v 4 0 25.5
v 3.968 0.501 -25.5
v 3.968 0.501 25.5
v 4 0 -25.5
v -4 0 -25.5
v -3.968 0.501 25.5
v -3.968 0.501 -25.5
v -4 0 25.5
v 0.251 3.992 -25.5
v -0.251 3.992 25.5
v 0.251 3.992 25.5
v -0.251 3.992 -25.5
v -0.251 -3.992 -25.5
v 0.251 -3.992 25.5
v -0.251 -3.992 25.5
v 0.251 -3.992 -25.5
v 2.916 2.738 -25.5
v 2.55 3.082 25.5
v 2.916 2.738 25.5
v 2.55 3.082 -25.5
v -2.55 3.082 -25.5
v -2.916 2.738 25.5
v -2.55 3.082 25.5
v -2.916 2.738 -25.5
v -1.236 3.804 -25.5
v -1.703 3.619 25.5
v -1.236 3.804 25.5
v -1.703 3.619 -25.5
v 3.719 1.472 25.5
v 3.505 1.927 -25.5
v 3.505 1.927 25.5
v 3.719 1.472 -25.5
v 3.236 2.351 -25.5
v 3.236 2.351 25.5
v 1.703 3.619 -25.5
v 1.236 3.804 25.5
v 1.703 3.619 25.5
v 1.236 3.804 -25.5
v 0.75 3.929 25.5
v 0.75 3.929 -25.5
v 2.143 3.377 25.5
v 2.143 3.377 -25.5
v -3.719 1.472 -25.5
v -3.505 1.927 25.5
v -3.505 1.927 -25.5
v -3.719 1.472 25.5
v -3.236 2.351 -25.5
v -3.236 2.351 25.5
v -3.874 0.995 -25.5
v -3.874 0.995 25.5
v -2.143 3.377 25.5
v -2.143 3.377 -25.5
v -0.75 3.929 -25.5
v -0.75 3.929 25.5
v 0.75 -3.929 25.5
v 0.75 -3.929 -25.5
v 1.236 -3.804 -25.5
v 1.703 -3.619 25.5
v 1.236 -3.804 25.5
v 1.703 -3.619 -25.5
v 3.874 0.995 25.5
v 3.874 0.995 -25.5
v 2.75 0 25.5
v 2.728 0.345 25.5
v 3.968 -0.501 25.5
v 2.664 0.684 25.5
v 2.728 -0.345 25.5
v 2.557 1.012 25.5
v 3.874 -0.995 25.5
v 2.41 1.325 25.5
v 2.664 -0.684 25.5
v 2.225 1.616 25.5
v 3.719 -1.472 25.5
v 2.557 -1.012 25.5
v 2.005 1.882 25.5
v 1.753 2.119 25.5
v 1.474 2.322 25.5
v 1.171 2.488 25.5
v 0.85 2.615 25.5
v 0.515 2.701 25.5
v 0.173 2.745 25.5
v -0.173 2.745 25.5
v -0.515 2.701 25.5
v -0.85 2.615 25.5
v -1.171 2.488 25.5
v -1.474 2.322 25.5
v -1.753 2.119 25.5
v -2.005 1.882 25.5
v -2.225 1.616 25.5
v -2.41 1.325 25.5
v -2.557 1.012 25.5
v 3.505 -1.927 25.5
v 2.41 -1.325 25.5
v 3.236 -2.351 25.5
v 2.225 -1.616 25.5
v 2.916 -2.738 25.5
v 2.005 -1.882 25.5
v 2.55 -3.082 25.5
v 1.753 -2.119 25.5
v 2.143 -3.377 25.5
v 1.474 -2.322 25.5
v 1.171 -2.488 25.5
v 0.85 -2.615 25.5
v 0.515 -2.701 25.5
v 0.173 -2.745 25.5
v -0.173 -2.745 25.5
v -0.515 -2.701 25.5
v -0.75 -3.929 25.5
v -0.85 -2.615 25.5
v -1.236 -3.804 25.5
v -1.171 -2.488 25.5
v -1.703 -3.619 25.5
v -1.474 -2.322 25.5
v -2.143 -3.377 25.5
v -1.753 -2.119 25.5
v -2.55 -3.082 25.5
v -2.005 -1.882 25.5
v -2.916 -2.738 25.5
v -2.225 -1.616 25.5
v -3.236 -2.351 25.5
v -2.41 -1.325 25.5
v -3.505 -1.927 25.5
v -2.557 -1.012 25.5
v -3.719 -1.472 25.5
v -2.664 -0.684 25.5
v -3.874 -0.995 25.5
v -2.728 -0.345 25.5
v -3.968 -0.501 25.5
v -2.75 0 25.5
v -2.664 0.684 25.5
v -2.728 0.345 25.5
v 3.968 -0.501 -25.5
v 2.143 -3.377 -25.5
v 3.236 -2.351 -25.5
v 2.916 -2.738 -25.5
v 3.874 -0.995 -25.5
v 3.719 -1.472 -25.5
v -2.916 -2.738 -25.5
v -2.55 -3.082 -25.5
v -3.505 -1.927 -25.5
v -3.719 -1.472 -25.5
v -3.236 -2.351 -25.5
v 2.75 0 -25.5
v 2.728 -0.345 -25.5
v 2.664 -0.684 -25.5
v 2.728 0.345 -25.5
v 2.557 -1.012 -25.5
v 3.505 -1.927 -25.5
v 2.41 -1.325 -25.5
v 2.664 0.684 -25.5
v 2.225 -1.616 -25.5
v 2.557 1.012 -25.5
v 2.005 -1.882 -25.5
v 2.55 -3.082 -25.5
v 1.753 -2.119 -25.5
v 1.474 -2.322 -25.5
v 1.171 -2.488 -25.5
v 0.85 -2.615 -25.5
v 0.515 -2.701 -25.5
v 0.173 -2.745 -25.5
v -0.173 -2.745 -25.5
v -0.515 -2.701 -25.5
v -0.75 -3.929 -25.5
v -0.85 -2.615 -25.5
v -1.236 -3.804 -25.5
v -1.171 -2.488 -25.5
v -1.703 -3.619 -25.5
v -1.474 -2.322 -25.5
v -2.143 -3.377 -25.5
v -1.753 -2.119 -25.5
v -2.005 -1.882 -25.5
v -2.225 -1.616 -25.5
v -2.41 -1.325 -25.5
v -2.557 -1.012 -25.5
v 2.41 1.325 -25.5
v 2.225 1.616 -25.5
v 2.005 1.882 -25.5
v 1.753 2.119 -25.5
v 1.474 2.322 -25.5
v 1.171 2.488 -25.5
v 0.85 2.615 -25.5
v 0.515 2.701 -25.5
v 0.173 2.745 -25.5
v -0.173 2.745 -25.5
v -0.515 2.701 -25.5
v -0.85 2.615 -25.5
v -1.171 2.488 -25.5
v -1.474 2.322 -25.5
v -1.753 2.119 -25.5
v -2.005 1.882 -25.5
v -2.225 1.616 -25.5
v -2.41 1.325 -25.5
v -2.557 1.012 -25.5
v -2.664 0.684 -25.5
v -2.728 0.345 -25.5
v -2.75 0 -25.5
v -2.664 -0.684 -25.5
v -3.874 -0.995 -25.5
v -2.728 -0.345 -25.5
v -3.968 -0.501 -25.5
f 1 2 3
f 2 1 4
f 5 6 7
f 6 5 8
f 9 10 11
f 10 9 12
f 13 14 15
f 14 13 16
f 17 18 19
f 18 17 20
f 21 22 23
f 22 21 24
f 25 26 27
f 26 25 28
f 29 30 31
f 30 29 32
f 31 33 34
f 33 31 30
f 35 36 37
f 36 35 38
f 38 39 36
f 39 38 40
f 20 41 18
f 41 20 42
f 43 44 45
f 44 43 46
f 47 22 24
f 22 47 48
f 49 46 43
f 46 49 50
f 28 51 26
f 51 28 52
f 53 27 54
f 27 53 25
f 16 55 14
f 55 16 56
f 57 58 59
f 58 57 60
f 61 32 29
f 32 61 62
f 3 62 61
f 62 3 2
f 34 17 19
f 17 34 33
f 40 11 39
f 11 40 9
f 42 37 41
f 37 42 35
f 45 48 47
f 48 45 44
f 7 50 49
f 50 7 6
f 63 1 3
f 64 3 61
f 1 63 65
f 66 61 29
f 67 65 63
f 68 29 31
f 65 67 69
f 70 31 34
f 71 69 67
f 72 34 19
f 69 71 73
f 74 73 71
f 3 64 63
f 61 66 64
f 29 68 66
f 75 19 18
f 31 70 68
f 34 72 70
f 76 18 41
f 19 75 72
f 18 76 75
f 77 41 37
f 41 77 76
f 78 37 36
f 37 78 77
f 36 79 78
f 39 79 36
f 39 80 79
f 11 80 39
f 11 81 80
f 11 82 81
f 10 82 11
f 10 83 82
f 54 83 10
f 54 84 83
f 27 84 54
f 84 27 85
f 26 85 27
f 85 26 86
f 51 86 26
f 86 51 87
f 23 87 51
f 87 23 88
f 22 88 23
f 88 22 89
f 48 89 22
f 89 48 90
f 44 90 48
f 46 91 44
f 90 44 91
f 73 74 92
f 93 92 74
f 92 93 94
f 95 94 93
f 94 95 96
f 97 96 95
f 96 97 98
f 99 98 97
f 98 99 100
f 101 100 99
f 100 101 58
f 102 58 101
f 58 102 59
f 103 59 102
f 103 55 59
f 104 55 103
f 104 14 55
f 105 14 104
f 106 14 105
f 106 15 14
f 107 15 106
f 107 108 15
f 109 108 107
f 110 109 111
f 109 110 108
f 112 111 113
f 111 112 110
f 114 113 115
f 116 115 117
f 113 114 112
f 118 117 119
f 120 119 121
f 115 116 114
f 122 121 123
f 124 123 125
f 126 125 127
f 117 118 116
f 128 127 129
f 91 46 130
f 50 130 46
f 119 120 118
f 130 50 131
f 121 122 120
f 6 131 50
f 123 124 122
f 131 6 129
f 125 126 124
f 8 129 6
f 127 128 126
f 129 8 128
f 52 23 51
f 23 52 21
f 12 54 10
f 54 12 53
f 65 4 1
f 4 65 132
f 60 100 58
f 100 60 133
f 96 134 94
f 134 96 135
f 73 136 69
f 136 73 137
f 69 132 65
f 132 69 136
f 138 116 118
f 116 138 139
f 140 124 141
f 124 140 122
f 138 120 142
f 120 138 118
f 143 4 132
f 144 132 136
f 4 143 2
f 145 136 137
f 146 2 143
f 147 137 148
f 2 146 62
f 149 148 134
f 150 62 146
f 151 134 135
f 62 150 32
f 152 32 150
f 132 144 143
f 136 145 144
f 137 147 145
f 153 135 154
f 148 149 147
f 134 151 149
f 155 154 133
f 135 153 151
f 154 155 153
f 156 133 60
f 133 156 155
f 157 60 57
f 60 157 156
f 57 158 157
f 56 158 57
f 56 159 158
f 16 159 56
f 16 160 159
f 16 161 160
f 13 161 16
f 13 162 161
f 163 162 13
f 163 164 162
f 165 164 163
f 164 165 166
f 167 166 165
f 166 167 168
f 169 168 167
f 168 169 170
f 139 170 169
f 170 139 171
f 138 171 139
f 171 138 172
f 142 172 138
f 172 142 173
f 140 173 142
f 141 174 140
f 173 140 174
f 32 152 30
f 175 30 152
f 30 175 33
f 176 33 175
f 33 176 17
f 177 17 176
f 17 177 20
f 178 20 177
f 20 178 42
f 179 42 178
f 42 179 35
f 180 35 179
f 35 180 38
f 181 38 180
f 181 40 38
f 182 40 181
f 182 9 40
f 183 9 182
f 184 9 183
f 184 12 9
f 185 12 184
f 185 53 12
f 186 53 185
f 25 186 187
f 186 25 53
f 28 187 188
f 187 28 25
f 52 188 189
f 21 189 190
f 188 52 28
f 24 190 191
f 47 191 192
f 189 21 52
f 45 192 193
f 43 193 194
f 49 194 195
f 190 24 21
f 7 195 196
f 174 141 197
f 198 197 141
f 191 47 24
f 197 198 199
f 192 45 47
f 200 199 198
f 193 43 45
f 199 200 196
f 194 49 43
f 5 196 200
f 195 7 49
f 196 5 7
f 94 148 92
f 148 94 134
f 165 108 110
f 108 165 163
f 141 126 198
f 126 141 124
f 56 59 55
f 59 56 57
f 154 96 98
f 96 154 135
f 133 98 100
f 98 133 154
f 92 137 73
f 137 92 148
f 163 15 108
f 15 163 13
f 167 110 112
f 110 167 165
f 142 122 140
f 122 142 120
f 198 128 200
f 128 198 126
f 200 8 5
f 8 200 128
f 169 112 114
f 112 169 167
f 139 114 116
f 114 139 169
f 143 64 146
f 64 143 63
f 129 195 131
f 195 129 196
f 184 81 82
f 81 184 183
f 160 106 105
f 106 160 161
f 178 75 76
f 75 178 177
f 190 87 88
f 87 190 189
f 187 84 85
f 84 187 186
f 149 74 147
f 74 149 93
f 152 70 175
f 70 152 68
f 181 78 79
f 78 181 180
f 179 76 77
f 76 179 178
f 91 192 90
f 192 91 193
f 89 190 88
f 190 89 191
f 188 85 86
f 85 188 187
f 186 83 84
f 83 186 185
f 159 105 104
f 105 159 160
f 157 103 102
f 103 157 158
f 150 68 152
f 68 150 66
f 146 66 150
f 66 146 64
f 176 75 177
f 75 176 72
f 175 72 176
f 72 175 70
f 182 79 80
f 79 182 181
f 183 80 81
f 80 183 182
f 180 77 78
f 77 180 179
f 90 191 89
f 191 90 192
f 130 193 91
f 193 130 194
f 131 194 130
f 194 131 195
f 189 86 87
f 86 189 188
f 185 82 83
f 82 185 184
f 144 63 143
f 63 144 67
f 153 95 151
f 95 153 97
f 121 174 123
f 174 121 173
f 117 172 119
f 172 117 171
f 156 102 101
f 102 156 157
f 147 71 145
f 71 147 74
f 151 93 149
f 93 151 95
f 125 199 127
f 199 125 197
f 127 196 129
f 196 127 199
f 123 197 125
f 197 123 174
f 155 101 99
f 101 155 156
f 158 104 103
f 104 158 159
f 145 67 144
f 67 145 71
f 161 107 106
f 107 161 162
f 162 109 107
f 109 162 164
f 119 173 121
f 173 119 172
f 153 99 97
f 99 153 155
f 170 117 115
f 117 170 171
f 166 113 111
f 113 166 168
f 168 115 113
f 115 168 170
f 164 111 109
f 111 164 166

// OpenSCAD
$fn = 50;


difference() {
	union() {
		translate(v = [0, 0, -25.5000000000]) {
			cylinder(h = 51, r = 4.0000000000);
		}
	}
	union() {
		translate(v = [0, 0, -100.0000000000]) {
			cylinder(h = 200, r = 2.7500000000);
		}
	}
}
